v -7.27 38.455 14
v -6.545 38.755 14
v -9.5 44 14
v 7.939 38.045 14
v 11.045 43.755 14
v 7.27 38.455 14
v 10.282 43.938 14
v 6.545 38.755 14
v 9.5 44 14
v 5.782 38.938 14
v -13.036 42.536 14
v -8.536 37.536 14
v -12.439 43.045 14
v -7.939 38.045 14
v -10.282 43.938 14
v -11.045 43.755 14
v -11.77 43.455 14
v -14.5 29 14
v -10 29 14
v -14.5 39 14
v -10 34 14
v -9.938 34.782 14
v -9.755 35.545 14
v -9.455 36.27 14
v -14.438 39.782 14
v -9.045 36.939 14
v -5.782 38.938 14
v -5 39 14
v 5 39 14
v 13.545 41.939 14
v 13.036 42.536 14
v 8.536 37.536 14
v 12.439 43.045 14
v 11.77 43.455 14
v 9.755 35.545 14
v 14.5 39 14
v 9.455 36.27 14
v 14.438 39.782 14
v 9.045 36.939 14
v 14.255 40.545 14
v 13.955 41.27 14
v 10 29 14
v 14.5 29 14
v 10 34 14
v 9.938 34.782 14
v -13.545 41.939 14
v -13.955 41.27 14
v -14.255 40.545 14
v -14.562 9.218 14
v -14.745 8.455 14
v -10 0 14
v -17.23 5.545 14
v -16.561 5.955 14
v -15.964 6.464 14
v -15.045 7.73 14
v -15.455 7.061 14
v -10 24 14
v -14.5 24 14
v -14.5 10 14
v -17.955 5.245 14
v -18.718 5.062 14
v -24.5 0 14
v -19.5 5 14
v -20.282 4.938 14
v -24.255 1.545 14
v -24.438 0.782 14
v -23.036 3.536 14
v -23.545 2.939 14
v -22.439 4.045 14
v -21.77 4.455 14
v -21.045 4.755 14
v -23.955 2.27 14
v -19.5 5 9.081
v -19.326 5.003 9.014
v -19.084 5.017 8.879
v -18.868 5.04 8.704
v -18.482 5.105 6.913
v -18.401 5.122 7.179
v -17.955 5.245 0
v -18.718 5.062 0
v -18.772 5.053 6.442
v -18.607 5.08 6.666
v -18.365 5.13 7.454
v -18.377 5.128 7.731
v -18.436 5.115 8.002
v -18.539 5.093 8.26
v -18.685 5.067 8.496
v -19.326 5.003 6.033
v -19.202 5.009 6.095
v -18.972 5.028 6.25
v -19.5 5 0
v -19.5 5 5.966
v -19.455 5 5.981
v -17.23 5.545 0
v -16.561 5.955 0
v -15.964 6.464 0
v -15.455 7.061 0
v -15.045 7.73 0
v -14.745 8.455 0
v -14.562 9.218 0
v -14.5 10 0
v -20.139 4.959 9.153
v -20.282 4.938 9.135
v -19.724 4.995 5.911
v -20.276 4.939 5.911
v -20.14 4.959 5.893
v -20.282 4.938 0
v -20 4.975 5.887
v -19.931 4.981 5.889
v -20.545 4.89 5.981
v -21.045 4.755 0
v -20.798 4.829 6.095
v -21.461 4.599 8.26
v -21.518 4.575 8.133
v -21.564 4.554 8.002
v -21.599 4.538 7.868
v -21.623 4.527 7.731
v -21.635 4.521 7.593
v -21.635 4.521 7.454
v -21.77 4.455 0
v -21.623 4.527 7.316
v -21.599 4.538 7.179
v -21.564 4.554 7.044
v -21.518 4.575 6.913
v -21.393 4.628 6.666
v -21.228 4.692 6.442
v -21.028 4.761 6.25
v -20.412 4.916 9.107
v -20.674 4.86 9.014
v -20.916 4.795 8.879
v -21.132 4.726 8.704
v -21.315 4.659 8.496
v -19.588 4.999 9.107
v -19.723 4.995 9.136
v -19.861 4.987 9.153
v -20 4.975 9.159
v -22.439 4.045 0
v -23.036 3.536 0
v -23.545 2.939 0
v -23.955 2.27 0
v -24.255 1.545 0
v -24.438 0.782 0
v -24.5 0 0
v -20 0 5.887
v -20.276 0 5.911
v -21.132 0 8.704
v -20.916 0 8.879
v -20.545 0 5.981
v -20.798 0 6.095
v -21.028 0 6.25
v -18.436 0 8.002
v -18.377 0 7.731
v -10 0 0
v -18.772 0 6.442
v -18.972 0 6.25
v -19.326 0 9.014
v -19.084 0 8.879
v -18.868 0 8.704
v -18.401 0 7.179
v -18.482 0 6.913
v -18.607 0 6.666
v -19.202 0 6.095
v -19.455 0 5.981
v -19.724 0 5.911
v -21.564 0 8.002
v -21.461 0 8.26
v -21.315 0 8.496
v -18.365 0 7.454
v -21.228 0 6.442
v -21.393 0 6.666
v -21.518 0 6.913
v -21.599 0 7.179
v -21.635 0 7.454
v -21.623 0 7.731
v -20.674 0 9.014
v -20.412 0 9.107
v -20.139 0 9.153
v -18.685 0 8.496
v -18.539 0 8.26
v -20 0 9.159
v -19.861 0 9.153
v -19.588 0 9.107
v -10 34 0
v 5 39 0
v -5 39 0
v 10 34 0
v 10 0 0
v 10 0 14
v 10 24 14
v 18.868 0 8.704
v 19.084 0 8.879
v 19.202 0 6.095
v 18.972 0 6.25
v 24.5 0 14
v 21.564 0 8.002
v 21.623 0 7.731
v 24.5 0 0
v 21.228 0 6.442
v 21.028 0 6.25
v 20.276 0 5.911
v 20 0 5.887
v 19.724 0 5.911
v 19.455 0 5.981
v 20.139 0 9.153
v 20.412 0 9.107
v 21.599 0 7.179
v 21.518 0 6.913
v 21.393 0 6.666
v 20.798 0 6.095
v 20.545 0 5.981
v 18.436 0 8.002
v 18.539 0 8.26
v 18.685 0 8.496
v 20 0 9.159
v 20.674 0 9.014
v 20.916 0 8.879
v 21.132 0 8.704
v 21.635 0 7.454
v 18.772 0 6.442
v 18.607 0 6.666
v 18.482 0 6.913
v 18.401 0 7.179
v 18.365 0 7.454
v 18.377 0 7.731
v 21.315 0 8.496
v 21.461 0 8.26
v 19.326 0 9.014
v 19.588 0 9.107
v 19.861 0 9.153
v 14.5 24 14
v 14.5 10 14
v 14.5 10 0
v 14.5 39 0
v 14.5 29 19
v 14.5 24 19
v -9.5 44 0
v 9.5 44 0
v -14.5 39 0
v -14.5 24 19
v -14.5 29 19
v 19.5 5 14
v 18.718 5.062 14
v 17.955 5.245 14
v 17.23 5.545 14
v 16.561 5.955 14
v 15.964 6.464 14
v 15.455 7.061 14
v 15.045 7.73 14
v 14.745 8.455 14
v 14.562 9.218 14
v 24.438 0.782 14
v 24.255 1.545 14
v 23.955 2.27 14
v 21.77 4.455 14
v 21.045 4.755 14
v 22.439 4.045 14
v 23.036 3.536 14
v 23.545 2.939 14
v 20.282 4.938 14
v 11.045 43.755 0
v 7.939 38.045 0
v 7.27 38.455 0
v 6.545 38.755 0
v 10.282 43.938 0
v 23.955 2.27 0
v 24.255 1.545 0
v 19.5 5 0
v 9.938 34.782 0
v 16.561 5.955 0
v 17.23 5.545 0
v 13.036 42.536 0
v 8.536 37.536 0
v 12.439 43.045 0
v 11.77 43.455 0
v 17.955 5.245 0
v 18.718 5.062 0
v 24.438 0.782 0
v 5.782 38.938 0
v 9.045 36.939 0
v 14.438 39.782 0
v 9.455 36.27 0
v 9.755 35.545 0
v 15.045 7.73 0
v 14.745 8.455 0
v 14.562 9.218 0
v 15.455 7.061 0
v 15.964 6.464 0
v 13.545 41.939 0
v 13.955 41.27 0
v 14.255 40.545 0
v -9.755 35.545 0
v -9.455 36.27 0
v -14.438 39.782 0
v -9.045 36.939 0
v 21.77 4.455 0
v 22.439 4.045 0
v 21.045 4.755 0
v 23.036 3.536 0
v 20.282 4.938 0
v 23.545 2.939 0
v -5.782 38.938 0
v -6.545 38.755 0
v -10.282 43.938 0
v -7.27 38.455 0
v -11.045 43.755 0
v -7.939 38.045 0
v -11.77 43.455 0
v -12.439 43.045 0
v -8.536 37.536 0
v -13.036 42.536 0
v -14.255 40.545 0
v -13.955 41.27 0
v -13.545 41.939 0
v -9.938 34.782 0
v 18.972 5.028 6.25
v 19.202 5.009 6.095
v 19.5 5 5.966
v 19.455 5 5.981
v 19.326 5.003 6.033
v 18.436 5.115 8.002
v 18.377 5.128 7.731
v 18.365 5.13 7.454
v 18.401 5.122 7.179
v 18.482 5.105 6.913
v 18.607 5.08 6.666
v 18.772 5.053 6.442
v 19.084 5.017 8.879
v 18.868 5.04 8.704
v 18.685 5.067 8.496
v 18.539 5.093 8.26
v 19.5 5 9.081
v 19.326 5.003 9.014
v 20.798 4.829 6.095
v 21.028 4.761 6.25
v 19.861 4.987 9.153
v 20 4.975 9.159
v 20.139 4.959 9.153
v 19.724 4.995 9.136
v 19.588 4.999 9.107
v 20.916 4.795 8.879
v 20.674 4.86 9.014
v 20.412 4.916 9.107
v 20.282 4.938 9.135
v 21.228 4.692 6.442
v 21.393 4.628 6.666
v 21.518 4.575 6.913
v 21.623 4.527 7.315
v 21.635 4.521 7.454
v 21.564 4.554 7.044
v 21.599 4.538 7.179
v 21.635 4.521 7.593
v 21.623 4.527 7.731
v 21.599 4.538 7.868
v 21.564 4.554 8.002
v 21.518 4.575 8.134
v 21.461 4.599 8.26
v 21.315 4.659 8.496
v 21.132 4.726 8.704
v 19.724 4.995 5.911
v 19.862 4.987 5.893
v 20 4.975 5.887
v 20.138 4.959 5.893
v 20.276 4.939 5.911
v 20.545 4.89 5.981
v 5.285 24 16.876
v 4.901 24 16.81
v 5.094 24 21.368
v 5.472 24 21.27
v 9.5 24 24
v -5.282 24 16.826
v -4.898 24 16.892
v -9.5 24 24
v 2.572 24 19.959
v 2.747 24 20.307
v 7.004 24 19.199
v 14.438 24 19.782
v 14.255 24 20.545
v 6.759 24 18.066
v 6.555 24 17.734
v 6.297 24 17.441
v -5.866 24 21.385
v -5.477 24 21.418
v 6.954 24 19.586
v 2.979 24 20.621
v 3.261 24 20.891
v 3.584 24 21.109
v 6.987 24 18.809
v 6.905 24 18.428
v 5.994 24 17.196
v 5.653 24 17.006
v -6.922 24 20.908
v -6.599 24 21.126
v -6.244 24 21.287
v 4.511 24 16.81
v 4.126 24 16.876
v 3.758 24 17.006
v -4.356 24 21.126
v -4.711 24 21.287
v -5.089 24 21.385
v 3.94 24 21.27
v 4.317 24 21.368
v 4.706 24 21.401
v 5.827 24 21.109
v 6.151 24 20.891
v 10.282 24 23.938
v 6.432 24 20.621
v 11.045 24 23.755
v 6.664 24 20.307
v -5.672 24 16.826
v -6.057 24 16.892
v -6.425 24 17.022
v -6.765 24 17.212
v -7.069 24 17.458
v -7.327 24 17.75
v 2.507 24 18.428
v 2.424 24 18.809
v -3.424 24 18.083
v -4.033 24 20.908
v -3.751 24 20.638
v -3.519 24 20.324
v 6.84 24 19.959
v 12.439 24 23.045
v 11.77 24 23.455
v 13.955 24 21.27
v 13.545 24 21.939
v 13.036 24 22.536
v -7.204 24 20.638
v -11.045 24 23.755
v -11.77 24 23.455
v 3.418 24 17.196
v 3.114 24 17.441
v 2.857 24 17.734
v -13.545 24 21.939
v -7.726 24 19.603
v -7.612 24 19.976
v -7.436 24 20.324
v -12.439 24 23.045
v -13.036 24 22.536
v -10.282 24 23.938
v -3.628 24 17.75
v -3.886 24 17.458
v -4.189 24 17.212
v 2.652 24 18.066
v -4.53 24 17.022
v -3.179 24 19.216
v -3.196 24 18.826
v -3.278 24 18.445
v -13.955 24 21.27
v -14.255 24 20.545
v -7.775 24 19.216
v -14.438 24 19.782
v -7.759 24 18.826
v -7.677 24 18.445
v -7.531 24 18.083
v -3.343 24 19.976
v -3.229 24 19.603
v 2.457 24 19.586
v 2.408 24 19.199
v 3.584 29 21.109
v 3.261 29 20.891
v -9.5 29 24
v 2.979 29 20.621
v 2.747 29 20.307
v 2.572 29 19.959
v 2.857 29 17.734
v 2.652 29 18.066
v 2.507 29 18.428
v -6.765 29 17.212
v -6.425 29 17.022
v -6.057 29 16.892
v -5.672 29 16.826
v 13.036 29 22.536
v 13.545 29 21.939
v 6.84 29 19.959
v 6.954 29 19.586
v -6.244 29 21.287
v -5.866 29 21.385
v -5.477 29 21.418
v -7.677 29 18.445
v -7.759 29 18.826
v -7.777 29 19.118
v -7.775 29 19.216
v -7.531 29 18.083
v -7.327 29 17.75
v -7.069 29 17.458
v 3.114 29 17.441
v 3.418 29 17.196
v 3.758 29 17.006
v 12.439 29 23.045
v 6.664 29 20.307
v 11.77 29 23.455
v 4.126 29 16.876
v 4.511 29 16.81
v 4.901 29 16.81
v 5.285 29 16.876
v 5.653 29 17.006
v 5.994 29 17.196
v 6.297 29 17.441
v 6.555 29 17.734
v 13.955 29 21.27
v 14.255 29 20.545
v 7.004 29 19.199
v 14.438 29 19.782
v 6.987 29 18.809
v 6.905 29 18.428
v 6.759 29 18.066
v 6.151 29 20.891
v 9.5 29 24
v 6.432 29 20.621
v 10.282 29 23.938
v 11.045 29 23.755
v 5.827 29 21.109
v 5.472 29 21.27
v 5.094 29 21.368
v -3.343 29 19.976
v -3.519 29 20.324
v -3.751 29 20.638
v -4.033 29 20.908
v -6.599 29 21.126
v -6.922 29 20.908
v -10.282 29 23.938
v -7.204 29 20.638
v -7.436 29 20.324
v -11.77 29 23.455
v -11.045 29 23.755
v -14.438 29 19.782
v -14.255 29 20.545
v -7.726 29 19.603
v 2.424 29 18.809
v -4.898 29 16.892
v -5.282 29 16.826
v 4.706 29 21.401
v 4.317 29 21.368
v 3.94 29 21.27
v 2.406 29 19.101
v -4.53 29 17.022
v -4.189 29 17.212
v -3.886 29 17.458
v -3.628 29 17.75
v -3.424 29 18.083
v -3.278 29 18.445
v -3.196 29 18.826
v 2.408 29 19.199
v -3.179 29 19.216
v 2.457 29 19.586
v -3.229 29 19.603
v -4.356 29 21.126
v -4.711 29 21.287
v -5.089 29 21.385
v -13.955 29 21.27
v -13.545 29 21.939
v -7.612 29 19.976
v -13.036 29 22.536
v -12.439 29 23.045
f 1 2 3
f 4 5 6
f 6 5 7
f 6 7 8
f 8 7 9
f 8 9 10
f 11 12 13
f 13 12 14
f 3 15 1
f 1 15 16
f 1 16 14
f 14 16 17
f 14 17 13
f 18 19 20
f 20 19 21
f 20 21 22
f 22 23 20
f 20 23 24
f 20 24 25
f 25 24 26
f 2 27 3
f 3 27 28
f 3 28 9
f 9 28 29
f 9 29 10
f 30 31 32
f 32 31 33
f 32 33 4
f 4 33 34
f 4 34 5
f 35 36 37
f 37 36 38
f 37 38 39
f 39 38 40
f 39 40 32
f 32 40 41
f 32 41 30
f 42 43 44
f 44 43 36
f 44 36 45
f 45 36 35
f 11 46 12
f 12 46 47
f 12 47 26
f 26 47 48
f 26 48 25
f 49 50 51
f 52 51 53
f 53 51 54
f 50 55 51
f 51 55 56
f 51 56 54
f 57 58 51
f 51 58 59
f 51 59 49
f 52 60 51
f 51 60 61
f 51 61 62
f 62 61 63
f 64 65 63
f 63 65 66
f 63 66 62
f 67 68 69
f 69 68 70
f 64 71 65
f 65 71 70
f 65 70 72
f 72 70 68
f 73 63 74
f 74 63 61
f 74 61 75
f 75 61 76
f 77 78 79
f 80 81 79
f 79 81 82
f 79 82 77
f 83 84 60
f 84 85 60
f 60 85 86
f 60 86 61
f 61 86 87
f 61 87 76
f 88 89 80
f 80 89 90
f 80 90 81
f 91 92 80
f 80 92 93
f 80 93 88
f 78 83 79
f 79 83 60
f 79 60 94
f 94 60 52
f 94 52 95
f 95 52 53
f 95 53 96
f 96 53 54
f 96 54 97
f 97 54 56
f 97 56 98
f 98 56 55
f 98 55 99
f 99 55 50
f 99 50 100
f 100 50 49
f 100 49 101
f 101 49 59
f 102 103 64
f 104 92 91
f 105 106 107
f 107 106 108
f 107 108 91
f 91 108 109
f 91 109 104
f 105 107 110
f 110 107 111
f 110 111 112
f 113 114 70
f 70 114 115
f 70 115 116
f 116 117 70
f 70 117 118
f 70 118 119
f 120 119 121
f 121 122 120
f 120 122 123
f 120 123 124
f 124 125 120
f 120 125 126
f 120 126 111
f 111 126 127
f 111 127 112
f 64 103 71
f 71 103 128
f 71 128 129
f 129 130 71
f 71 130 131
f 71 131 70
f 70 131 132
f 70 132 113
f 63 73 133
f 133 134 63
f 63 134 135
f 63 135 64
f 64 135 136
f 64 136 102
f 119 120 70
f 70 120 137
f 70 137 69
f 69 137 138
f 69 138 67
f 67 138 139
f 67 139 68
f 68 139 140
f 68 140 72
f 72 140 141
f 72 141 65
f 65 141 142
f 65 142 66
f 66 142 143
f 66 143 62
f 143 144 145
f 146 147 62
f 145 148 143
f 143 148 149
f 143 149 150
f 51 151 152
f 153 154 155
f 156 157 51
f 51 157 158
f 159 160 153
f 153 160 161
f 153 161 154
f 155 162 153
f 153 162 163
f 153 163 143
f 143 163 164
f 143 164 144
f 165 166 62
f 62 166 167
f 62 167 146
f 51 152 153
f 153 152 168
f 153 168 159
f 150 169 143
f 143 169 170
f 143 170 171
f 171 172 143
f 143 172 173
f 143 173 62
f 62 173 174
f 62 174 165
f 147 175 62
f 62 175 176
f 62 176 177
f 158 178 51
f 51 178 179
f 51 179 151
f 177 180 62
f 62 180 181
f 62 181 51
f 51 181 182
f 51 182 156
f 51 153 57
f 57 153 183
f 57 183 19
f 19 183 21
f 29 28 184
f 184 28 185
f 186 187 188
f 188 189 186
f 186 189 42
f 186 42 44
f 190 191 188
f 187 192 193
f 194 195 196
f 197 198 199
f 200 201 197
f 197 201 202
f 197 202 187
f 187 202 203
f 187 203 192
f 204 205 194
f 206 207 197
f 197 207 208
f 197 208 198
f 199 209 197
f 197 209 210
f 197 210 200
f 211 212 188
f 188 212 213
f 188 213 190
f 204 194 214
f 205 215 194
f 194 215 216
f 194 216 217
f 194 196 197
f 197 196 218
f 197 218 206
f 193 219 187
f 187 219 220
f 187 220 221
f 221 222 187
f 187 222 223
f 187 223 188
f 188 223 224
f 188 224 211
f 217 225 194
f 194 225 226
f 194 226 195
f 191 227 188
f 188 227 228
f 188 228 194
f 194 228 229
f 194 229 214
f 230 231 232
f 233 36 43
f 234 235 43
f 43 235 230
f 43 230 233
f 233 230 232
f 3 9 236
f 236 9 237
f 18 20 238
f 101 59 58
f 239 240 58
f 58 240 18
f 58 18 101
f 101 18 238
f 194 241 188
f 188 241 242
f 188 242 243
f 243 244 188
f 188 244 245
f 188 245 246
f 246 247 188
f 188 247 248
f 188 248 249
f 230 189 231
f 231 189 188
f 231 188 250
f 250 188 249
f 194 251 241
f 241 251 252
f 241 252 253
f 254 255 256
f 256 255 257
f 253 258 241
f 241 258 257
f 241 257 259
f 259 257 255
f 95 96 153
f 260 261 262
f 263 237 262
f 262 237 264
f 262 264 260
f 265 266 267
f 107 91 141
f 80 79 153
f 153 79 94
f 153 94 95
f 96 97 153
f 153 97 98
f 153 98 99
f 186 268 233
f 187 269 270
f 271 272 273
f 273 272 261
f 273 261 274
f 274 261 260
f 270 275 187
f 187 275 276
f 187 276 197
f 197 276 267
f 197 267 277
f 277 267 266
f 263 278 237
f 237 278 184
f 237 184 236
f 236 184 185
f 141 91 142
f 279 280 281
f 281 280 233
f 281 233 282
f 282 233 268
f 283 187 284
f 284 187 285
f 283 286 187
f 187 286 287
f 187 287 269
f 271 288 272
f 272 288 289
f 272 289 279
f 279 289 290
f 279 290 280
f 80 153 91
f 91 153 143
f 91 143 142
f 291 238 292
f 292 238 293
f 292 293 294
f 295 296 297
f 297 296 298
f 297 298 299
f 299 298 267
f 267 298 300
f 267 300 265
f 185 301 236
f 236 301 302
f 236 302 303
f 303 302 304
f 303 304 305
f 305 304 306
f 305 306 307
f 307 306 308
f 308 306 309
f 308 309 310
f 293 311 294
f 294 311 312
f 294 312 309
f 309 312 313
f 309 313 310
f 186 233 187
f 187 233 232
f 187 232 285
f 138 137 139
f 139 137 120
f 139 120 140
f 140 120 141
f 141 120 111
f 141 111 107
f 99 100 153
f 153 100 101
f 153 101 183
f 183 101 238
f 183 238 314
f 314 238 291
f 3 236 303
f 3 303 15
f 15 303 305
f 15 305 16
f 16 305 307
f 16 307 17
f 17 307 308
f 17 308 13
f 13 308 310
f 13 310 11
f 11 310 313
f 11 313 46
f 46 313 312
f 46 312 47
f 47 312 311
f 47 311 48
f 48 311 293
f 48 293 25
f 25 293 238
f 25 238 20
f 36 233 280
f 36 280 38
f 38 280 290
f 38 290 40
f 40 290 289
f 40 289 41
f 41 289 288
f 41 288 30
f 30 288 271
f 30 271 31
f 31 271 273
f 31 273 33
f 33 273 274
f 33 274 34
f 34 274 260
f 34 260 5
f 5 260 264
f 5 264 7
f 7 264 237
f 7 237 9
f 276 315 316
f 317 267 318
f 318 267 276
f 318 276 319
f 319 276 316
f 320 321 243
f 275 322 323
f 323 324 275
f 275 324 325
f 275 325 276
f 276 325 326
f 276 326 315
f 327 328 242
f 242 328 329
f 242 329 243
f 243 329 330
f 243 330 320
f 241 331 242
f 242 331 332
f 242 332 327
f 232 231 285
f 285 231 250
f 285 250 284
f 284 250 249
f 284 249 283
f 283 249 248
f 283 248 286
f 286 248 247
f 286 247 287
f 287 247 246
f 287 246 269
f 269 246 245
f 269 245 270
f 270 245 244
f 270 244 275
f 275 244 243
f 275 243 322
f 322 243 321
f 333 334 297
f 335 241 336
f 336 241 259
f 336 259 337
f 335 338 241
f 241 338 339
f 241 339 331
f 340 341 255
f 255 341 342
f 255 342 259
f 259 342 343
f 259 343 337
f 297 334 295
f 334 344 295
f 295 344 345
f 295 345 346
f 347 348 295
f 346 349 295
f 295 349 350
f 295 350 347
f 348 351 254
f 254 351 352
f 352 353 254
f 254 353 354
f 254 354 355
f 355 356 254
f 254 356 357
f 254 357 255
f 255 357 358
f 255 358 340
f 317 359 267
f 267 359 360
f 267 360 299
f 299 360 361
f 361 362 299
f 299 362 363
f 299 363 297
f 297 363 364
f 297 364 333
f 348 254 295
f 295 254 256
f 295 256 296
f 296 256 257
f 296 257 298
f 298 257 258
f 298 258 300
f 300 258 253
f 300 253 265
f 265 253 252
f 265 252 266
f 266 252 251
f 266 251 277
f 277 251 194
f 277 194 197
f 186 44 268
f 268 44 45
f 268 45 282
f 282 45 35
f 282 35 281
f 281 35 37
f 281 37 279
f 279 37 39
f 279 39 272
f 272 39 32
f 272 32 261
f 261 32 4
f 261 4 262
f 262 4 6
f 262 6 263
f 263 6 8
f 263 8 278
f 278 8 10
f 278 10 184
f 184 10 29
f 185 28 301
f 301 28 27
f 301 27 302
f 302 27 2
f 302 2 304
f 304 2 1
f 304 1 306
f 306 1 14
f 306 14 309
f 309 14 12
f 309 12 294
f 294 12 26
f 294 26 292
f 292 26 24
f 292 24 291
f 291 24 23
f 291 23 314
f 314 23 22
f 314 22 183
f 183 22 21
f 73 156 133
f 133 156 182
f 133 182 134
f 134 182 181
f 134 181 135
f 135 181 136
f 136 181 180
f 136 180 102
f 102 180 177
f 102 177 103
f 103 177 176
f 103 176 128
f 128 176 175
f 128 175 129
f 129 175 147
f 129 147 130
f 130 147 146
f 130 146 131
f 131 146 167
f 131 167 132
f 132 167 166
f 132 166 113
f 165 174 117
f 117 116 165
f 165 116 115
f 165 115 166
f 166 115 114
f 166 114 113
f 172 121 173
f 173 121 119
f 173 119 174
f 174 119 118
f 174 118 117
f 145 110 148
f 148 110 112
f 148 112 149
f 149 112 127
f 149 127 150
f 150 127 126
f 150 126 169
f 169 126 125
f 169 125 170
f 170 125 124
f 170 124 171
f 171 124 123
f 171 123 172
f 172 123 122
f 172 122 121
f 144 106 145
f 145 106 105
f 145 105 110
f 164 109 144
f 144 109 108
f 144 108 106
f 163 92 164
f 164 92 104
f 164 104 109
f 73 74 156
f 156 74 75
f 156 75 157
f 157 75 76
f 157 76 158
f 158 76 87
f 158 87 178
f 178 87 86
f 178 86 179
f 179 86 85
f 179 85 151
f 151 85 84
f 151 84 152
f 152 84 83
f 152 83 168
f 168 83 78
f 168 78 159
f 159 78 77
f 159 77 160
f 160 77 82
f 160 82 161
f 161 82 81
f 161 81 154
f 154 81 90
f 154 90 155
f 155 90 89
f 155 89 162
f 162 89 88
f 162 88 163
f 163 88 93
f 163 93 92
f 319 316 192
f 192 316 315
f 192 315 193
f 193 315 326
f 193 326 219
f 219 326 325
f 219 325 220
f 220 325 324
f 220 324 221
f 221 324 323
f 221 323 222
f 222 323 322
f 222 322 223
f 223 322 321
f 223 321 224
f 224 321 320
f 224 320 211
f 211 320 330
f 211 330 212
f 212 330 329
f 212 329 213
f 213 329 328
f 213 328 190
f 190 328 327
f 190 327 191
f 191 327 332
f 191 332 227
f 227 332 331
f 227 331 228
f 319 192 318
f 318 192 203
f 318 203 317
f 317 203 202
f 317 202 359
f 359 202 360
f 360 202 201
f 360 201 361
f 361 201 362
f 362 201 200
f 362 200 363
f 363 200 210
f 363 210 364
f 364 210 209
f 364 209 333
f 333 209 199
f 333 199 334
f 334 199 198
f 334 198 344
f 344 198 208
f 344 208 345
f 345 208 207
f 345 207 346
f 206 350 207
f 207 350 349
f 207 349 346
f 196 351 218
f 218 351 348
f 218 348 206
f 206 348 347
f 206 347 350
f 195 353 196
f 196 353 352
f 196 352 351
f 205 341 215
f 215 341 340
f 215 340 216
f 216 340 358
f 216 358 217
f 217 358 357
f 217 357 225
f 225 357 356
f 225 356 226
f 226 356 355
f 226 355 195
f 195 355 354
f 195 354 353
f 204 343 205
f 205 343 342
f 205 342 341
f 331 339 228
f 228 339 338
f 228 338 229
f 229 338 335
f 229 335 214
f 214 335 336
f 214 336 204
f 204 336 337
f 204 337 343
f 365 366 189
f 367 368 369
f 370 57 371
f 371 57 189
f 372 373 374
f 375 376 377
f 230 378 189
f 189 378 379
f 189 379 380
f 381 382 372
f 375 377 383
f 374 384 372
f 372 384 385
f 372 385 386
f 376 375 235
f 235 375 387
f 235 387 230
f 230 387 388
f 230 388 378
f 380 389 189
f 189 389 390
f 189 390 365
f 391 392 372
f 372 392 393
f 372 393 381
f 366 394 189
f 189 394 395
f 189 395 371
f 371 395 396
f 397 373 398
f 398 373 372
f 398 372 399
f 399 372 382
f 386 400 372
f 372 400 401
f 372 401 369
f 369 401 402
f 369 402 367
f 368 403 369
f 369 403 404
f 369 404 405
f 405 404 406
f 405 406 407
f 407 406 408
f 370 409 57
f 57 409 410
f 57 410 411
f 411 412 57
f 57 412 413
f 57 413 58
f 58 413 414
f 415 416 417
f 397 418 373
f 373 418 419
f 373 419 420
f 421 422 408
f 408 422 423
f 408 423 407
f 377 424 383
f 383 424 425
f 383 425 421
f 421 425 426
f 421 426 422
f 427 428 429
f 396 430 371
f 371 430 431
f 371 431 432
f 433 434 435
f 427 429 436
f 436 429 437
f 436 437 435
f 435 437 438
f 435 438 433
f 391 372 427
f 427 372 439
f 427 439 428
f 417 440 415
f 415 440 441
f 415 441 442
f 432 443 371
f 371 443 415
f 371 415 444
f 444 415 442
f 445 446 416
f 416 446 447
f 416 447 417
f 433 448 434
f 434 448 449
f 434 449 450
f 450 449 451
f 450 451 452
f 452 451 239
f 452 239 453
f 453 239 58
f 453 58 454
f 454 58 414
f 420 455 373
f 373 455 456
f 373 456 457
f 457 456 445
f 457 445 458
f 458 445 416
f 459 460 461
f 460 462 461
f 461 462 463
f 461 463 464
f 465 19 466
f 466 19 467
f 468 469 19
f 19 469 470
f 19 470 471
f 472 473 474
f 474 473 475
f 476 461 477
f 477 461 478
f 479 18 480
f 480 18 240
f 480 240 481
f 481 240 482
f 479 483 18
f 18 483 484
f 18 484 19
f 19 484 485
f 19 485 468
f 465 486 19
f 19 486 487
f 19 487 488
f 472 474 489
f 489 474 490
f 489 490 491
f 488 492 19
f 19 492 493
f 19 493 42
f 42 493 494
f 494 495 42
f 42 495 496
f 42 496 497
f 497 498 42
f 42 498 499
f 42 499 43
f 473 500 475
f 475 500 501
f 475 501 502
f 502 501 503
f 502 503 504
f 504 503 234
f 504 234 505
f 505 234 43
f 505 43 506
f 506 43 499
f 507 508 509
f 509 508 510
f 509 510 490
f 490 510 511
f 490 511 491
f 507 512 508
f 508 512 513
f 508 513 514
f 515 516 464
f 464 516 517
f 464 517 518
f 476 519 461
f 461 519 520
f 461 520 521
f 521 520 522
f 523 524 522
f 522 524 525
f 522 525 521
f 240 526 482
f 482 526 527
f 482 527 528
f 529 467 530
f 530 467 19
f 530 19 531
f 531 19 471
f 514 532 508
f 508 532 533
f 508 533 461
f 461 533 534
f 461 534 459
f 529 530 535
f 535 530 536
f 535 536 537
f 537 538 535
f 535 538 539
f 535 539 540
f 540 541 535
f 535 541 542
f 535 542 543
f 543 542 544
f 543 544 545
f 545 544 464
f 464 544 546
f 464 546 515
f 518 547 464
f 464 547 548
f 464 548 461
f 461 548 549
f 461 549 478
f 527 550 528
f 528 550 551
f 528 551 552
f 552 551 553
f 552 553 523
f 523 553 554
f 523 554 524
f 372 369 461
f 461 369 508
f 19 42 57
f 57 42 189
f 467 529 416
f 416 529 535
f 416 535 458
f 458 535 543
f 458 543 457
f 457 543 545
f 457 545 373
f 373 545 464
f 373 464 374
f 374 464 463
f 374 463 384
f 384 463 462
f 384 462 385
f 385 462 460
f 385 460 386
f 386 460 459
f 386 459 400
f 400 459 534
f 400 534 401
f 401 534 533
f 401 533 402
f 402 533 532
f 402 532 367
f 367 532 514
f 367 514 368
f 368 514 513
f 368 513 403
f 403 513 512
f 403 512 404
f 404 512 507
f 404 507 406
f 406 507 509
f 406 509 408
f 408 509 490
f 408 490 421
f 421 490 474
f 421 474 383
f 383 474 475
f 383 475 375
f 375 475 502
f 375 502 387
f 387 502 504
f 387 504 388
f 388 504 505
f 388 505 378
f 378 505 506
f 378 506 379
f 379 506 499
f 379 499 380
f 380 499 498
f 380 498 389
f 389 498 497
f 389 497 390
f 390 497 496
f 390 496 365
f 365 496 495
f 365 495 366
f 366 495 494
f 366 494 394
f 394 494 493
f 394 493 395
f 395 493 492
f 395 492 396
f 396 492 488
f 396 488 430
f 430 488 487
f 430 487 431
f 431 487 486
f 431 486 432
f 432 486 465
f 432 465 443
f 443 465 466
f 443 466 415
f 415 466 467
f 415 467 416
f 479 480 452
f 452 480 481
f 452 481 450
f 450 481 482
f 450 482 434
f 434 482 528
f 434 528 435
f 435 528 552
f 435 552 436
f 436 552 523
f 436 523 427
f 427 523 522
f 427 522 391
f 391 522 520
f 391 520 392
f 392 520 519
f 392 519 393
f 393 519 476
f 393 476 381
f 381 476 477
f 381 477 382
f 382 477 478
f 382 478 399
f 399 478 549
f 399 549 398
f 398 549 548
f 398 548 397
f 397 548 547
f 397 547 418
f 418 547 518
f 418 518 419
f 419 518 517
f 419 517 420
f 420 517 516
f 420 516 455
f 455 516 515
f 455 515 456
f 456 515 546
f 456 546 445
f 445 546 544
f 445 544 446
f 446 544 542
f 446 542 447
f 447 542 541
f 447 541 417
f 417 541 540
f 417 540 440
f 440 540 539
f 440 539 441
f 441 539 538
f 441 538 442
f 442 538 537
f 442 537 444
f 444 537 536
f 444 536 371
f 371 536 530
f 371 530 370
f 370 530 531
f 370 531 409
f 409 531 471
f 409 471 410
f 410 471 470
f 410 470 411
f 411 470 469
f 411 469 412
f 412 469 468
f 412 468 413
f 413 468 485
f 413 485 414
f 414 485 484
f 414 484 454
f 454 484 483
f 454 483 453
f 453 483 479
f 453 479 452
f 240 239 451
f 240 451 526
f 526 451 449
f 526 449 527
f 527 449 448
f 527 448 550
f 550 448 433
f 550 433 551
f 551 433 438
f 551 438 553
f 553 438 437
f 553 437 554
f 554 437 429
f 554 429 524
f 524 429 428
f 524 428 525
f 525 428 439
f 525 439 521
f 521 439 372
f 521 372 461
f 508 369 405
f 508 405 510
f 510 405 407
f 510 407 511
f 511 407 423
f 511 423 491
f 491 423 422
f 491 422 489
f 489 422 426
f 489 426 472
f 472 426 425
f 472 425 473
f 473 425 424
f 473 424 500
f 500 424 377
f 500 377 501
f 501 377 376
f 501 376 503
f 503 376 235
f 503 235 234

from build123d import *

# Parameters (mm, degrees)
BOSS_EXTRUDE1_DEPTH     = 14
FILLET1_R               = 5
FILLET2_R               = 5
CUT_EXTRUDE3_DEPTH      = 10
CUT_EXTRUDE3_DEPTH_BACK = 10
SKETCH2_R               = 1.636049027
SKETCH4_W               = 29
SKETCH4_H               = 5
BOSS_EXTRUDE2_DEPTH     = 10
SKETCH5_R               = 2.3
CUT_EXTRUDE4_DEPTH      = 30
FILLET3_R               = 5


with BuildPart() as part:
    # Sketch1 → Boss-Extrude1 (new body)
    with BuildSketch(Plane.XY):
        Polygon((-24.5, 0), (-24.5, 5), (-14.5, 5), (-14.5, 44), (14.5, 44), (14.5, 5), (24.5, 5), (24.5, 0), (10, 0), (10, 39), (-10, 39), (-10, 0), align=None)
    extrude(amount=BOSS_EXTRUDE1_DEPTH)

    # Fillet1
    fillet1_edges = [part.edges().sort_by_distance(p)[0] for p in [
        (-14.5, 44, 7),
        (14.5, 44, 7),
        (24.5, 5, 7),
        (-24.5, 5, 7),
        (14.5, 5, 7),
        (-14.5, 5, 7),
    ]]
    fillet(fillet1_edges, radius=FILLET1_R - 0.0001)  # a hair under: the kernel refuses the full size

    # Fillet2
    fillet2_edges = [part.edges().sort_by_distance(p)[0] for p in [
        (10, 39, 7),
        (-10, 39, 7),
    ]]
    fillet(fillet2_edges, radius=FILLET2_R)

    # Sketch2 → Cut-Extrude3 (cut, two sides: drawn at the far end of the back side and taken through both)
    with BuildSketch(Plane(origin=(0, 0, 0), x_dir=(1, 0, 0), z_dir=(0, 1, 0)).offset(-CUT_EXTRUDE3_DEPTH_BACK)):
        with Locations(Location((-20, -7.523321805, 0), (0, 0, 72.20487372))):
            Circle(SKETCH2_R)
        with Locations(Location((20, -7.523321805, 0), (0, 0, 107.795126278))):
            Circle(SKETCH2_R)
    extrude(amount=CUT_EXTRUDE3_DEPTH + CUT_EXTRUDE3_DEPTH_BACK, mode=Mode.SUBTRACT)

    # Sketch4 → Boss-Extrude2 (add)
    with BuildSketch(Plane.XY.offset(14)):
        with Locations((0, 26.5)):
            Rectangle(SKETCH4_W, SKETCH4_H)
    extrude(amount=BOSS_EXTRUDE2_DEPTH)

    # Sketch5 → Cut-Extrude4 (cut)
    with BuildSketch(Plane(origin=(0, 44, 0), x_dir=(1, 0, 0), z_dir=(0, 1, 0))):
        with Locations(Location((-5.477408827, -19.118067384, 0), (0, 0, 270))):
            Circle(SKETCH5_R)
        with Locations(Location((4.70575, -19.10149527, 0), (0, 0, 270))):
            Circle(SKETCH5_R)
    extrude(amount=-CUT_EXTRUDE4_DEPTH, mode=Mode.SUBTRACT)

    # Fillet3
    fillet3_edges = [part.edges().sort_by_distance(p)[0] for p in [
        (-14.5, 26.5, 24),
        (14.5, 26.5, 24),
    ]]
    fillet(fillet3_edges, radius=FILLET3_R)


solid = part.part
